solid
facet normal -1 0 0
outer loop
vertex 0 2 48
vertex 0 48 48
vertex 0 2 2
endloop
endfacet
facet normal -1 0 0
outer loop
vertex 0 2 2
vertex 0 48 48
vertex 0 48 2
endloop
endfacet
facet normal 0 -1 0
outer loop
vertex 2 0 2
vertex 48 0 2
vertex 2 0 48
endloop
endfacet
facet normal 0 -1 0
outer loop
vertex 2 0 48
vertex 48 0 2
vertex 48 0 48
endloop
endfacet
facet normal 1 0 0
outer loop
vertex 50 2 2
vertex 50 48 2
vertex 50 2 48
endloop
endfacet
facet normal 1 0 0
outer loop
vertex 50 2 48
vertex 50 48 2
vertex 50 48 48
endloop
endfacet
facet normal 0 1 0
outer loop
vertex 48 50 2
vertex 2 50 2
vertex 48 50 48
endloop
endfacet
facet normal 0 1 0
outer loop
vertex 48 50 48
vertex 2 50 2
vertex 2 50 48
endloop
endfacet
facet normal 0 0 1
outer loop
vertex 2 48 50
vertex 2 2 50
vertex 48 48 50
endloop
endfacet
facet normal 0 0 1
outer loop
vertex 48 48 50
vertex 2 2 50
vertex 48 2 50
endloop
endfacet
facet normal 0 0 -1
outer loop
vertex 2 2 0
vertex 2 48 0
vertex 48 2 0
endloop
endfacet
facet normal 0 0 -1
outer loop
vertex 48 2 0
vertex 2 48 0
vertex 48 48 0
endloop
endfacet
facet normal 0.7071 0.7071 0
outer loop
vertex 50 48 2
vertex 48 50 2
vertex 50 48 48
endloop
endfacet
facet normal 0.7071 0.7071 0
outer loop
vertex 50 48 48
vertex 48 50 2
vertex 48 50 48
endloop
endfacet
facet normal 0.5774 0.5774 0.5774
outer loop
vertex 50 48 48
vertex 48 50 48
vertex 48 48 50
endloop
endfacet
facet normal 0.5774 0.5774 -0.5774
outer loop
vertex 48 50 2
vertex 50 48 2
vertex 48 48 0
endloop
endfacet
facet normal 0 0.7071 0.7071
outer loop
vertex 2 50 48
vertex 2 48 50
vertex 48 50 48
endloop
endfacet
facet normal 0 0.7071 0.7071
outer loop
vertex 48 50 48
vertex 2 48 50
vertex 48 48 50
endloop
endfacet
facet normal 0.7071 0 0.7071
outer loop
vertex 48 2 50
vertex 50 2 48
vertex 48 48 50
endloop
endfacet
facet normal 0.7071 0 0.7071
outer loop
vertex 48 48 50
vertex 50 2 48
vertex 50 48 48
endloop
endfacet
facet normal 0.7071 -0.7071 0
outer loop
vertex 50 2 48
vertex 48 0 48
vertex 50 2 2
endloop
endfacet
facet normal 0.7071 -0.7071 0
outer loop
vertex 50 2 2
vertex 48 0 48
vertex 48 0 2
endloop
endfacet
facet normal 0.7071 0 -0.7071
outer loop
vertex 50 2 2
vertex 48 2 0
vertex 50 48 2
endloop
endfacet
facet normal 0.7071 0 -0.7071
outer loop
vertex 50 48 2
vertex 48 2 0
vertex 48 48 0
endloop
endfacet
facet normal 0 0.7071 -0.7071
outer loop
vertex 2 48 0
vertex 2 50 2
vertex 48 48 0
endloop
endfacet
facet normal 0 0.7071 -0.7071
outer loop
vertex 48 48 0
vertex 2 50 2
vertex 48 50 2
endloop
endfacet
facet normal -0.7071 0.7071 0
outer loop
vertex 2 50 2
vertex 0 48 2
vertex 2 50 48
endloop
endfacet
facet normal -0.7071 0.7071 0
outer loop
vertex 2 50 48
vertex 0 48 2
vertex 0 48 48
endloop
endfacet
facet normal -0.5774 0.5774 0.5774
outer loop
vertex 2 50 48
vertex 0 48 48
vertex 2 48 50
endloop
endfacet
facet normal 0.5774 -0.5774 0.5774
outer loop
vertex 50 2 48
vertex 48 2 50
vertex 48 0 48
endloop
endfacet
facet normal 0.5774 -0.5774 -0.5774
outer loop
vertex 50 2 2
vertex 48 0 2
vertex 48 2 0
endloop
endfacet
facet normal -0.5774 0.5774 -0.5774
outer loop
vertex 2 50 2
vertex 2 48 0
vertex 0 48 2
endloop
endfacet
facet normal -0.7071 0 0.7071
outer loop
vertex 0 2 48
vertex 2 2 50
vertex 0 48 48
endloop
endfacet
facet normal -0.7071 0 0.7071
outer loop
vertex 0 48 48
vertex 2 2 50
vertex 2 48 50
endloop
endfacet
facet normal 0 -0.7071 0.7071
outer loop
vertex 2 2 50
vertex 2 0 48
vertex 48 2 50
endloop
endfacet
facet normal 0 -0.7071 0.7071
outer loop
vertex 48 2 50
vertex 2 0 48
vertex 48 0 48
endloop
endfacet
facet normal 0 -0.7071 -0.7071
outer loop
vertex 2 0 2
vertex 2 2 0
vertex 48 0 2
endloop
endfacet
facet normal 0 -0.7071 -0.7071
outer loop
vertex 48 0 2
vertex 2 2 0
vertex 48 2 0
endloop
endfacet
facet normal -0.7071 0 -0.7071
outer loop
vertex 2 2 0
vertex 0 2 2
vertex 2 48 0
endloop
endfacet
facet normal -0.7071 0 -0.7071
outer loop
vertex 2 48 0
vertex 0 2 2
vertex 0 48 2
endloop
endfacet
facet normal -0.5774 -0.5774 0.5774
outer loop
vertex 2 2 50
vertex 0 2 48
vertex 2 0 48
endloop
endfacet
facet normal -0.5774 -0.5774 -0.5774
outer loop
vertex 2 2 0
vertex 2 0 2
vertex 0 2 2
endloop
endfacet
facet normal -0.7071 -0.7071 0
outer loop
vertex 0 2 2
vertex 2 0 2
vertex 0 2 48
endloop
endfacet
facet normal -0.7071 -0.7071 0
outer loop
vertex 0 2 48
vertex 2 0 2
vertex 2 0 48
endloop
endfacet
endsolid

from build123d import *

# Parameters (mm, degrees)
ESQUISSE1_W        = 50
ESQUISSE1_H        = 50
BOSS_EXTRU_1_DEPTH = 50
CHANFREIN1_SIZE    = 2


with BuildPart() as part:
    # Esquisse1 → Boss.-Extru.1 (new body)
    with BuildSketch(Plane.XY):
        with Locations((25, 25)):
            Rectangle(ESQUISSE1_W, ESQUISSE1_H)
    extrude(amount=BOSS_EXTRU_1_DEPTH)

    # Chanfrein1
    chanfrein1_edges = [part.edges().sort_by_distance(p)[0] for p in [
        (50, 25, 50),
        (25, 50, 50),
        (0, 25, 50),
        (25, 50, 0),
        (50, 25, 0),
        (25, 0, 0),
        (0, 25, 0),
        (0, 50, 25),
        (50, 50, 25),
        (50, 0, 25),
        (0, 0, 25),
        (25, 0, 50),
    ]]
    chamfer(chanfrein1_edges, length=CHANFREIN1_SIZE)


solid = part.part
